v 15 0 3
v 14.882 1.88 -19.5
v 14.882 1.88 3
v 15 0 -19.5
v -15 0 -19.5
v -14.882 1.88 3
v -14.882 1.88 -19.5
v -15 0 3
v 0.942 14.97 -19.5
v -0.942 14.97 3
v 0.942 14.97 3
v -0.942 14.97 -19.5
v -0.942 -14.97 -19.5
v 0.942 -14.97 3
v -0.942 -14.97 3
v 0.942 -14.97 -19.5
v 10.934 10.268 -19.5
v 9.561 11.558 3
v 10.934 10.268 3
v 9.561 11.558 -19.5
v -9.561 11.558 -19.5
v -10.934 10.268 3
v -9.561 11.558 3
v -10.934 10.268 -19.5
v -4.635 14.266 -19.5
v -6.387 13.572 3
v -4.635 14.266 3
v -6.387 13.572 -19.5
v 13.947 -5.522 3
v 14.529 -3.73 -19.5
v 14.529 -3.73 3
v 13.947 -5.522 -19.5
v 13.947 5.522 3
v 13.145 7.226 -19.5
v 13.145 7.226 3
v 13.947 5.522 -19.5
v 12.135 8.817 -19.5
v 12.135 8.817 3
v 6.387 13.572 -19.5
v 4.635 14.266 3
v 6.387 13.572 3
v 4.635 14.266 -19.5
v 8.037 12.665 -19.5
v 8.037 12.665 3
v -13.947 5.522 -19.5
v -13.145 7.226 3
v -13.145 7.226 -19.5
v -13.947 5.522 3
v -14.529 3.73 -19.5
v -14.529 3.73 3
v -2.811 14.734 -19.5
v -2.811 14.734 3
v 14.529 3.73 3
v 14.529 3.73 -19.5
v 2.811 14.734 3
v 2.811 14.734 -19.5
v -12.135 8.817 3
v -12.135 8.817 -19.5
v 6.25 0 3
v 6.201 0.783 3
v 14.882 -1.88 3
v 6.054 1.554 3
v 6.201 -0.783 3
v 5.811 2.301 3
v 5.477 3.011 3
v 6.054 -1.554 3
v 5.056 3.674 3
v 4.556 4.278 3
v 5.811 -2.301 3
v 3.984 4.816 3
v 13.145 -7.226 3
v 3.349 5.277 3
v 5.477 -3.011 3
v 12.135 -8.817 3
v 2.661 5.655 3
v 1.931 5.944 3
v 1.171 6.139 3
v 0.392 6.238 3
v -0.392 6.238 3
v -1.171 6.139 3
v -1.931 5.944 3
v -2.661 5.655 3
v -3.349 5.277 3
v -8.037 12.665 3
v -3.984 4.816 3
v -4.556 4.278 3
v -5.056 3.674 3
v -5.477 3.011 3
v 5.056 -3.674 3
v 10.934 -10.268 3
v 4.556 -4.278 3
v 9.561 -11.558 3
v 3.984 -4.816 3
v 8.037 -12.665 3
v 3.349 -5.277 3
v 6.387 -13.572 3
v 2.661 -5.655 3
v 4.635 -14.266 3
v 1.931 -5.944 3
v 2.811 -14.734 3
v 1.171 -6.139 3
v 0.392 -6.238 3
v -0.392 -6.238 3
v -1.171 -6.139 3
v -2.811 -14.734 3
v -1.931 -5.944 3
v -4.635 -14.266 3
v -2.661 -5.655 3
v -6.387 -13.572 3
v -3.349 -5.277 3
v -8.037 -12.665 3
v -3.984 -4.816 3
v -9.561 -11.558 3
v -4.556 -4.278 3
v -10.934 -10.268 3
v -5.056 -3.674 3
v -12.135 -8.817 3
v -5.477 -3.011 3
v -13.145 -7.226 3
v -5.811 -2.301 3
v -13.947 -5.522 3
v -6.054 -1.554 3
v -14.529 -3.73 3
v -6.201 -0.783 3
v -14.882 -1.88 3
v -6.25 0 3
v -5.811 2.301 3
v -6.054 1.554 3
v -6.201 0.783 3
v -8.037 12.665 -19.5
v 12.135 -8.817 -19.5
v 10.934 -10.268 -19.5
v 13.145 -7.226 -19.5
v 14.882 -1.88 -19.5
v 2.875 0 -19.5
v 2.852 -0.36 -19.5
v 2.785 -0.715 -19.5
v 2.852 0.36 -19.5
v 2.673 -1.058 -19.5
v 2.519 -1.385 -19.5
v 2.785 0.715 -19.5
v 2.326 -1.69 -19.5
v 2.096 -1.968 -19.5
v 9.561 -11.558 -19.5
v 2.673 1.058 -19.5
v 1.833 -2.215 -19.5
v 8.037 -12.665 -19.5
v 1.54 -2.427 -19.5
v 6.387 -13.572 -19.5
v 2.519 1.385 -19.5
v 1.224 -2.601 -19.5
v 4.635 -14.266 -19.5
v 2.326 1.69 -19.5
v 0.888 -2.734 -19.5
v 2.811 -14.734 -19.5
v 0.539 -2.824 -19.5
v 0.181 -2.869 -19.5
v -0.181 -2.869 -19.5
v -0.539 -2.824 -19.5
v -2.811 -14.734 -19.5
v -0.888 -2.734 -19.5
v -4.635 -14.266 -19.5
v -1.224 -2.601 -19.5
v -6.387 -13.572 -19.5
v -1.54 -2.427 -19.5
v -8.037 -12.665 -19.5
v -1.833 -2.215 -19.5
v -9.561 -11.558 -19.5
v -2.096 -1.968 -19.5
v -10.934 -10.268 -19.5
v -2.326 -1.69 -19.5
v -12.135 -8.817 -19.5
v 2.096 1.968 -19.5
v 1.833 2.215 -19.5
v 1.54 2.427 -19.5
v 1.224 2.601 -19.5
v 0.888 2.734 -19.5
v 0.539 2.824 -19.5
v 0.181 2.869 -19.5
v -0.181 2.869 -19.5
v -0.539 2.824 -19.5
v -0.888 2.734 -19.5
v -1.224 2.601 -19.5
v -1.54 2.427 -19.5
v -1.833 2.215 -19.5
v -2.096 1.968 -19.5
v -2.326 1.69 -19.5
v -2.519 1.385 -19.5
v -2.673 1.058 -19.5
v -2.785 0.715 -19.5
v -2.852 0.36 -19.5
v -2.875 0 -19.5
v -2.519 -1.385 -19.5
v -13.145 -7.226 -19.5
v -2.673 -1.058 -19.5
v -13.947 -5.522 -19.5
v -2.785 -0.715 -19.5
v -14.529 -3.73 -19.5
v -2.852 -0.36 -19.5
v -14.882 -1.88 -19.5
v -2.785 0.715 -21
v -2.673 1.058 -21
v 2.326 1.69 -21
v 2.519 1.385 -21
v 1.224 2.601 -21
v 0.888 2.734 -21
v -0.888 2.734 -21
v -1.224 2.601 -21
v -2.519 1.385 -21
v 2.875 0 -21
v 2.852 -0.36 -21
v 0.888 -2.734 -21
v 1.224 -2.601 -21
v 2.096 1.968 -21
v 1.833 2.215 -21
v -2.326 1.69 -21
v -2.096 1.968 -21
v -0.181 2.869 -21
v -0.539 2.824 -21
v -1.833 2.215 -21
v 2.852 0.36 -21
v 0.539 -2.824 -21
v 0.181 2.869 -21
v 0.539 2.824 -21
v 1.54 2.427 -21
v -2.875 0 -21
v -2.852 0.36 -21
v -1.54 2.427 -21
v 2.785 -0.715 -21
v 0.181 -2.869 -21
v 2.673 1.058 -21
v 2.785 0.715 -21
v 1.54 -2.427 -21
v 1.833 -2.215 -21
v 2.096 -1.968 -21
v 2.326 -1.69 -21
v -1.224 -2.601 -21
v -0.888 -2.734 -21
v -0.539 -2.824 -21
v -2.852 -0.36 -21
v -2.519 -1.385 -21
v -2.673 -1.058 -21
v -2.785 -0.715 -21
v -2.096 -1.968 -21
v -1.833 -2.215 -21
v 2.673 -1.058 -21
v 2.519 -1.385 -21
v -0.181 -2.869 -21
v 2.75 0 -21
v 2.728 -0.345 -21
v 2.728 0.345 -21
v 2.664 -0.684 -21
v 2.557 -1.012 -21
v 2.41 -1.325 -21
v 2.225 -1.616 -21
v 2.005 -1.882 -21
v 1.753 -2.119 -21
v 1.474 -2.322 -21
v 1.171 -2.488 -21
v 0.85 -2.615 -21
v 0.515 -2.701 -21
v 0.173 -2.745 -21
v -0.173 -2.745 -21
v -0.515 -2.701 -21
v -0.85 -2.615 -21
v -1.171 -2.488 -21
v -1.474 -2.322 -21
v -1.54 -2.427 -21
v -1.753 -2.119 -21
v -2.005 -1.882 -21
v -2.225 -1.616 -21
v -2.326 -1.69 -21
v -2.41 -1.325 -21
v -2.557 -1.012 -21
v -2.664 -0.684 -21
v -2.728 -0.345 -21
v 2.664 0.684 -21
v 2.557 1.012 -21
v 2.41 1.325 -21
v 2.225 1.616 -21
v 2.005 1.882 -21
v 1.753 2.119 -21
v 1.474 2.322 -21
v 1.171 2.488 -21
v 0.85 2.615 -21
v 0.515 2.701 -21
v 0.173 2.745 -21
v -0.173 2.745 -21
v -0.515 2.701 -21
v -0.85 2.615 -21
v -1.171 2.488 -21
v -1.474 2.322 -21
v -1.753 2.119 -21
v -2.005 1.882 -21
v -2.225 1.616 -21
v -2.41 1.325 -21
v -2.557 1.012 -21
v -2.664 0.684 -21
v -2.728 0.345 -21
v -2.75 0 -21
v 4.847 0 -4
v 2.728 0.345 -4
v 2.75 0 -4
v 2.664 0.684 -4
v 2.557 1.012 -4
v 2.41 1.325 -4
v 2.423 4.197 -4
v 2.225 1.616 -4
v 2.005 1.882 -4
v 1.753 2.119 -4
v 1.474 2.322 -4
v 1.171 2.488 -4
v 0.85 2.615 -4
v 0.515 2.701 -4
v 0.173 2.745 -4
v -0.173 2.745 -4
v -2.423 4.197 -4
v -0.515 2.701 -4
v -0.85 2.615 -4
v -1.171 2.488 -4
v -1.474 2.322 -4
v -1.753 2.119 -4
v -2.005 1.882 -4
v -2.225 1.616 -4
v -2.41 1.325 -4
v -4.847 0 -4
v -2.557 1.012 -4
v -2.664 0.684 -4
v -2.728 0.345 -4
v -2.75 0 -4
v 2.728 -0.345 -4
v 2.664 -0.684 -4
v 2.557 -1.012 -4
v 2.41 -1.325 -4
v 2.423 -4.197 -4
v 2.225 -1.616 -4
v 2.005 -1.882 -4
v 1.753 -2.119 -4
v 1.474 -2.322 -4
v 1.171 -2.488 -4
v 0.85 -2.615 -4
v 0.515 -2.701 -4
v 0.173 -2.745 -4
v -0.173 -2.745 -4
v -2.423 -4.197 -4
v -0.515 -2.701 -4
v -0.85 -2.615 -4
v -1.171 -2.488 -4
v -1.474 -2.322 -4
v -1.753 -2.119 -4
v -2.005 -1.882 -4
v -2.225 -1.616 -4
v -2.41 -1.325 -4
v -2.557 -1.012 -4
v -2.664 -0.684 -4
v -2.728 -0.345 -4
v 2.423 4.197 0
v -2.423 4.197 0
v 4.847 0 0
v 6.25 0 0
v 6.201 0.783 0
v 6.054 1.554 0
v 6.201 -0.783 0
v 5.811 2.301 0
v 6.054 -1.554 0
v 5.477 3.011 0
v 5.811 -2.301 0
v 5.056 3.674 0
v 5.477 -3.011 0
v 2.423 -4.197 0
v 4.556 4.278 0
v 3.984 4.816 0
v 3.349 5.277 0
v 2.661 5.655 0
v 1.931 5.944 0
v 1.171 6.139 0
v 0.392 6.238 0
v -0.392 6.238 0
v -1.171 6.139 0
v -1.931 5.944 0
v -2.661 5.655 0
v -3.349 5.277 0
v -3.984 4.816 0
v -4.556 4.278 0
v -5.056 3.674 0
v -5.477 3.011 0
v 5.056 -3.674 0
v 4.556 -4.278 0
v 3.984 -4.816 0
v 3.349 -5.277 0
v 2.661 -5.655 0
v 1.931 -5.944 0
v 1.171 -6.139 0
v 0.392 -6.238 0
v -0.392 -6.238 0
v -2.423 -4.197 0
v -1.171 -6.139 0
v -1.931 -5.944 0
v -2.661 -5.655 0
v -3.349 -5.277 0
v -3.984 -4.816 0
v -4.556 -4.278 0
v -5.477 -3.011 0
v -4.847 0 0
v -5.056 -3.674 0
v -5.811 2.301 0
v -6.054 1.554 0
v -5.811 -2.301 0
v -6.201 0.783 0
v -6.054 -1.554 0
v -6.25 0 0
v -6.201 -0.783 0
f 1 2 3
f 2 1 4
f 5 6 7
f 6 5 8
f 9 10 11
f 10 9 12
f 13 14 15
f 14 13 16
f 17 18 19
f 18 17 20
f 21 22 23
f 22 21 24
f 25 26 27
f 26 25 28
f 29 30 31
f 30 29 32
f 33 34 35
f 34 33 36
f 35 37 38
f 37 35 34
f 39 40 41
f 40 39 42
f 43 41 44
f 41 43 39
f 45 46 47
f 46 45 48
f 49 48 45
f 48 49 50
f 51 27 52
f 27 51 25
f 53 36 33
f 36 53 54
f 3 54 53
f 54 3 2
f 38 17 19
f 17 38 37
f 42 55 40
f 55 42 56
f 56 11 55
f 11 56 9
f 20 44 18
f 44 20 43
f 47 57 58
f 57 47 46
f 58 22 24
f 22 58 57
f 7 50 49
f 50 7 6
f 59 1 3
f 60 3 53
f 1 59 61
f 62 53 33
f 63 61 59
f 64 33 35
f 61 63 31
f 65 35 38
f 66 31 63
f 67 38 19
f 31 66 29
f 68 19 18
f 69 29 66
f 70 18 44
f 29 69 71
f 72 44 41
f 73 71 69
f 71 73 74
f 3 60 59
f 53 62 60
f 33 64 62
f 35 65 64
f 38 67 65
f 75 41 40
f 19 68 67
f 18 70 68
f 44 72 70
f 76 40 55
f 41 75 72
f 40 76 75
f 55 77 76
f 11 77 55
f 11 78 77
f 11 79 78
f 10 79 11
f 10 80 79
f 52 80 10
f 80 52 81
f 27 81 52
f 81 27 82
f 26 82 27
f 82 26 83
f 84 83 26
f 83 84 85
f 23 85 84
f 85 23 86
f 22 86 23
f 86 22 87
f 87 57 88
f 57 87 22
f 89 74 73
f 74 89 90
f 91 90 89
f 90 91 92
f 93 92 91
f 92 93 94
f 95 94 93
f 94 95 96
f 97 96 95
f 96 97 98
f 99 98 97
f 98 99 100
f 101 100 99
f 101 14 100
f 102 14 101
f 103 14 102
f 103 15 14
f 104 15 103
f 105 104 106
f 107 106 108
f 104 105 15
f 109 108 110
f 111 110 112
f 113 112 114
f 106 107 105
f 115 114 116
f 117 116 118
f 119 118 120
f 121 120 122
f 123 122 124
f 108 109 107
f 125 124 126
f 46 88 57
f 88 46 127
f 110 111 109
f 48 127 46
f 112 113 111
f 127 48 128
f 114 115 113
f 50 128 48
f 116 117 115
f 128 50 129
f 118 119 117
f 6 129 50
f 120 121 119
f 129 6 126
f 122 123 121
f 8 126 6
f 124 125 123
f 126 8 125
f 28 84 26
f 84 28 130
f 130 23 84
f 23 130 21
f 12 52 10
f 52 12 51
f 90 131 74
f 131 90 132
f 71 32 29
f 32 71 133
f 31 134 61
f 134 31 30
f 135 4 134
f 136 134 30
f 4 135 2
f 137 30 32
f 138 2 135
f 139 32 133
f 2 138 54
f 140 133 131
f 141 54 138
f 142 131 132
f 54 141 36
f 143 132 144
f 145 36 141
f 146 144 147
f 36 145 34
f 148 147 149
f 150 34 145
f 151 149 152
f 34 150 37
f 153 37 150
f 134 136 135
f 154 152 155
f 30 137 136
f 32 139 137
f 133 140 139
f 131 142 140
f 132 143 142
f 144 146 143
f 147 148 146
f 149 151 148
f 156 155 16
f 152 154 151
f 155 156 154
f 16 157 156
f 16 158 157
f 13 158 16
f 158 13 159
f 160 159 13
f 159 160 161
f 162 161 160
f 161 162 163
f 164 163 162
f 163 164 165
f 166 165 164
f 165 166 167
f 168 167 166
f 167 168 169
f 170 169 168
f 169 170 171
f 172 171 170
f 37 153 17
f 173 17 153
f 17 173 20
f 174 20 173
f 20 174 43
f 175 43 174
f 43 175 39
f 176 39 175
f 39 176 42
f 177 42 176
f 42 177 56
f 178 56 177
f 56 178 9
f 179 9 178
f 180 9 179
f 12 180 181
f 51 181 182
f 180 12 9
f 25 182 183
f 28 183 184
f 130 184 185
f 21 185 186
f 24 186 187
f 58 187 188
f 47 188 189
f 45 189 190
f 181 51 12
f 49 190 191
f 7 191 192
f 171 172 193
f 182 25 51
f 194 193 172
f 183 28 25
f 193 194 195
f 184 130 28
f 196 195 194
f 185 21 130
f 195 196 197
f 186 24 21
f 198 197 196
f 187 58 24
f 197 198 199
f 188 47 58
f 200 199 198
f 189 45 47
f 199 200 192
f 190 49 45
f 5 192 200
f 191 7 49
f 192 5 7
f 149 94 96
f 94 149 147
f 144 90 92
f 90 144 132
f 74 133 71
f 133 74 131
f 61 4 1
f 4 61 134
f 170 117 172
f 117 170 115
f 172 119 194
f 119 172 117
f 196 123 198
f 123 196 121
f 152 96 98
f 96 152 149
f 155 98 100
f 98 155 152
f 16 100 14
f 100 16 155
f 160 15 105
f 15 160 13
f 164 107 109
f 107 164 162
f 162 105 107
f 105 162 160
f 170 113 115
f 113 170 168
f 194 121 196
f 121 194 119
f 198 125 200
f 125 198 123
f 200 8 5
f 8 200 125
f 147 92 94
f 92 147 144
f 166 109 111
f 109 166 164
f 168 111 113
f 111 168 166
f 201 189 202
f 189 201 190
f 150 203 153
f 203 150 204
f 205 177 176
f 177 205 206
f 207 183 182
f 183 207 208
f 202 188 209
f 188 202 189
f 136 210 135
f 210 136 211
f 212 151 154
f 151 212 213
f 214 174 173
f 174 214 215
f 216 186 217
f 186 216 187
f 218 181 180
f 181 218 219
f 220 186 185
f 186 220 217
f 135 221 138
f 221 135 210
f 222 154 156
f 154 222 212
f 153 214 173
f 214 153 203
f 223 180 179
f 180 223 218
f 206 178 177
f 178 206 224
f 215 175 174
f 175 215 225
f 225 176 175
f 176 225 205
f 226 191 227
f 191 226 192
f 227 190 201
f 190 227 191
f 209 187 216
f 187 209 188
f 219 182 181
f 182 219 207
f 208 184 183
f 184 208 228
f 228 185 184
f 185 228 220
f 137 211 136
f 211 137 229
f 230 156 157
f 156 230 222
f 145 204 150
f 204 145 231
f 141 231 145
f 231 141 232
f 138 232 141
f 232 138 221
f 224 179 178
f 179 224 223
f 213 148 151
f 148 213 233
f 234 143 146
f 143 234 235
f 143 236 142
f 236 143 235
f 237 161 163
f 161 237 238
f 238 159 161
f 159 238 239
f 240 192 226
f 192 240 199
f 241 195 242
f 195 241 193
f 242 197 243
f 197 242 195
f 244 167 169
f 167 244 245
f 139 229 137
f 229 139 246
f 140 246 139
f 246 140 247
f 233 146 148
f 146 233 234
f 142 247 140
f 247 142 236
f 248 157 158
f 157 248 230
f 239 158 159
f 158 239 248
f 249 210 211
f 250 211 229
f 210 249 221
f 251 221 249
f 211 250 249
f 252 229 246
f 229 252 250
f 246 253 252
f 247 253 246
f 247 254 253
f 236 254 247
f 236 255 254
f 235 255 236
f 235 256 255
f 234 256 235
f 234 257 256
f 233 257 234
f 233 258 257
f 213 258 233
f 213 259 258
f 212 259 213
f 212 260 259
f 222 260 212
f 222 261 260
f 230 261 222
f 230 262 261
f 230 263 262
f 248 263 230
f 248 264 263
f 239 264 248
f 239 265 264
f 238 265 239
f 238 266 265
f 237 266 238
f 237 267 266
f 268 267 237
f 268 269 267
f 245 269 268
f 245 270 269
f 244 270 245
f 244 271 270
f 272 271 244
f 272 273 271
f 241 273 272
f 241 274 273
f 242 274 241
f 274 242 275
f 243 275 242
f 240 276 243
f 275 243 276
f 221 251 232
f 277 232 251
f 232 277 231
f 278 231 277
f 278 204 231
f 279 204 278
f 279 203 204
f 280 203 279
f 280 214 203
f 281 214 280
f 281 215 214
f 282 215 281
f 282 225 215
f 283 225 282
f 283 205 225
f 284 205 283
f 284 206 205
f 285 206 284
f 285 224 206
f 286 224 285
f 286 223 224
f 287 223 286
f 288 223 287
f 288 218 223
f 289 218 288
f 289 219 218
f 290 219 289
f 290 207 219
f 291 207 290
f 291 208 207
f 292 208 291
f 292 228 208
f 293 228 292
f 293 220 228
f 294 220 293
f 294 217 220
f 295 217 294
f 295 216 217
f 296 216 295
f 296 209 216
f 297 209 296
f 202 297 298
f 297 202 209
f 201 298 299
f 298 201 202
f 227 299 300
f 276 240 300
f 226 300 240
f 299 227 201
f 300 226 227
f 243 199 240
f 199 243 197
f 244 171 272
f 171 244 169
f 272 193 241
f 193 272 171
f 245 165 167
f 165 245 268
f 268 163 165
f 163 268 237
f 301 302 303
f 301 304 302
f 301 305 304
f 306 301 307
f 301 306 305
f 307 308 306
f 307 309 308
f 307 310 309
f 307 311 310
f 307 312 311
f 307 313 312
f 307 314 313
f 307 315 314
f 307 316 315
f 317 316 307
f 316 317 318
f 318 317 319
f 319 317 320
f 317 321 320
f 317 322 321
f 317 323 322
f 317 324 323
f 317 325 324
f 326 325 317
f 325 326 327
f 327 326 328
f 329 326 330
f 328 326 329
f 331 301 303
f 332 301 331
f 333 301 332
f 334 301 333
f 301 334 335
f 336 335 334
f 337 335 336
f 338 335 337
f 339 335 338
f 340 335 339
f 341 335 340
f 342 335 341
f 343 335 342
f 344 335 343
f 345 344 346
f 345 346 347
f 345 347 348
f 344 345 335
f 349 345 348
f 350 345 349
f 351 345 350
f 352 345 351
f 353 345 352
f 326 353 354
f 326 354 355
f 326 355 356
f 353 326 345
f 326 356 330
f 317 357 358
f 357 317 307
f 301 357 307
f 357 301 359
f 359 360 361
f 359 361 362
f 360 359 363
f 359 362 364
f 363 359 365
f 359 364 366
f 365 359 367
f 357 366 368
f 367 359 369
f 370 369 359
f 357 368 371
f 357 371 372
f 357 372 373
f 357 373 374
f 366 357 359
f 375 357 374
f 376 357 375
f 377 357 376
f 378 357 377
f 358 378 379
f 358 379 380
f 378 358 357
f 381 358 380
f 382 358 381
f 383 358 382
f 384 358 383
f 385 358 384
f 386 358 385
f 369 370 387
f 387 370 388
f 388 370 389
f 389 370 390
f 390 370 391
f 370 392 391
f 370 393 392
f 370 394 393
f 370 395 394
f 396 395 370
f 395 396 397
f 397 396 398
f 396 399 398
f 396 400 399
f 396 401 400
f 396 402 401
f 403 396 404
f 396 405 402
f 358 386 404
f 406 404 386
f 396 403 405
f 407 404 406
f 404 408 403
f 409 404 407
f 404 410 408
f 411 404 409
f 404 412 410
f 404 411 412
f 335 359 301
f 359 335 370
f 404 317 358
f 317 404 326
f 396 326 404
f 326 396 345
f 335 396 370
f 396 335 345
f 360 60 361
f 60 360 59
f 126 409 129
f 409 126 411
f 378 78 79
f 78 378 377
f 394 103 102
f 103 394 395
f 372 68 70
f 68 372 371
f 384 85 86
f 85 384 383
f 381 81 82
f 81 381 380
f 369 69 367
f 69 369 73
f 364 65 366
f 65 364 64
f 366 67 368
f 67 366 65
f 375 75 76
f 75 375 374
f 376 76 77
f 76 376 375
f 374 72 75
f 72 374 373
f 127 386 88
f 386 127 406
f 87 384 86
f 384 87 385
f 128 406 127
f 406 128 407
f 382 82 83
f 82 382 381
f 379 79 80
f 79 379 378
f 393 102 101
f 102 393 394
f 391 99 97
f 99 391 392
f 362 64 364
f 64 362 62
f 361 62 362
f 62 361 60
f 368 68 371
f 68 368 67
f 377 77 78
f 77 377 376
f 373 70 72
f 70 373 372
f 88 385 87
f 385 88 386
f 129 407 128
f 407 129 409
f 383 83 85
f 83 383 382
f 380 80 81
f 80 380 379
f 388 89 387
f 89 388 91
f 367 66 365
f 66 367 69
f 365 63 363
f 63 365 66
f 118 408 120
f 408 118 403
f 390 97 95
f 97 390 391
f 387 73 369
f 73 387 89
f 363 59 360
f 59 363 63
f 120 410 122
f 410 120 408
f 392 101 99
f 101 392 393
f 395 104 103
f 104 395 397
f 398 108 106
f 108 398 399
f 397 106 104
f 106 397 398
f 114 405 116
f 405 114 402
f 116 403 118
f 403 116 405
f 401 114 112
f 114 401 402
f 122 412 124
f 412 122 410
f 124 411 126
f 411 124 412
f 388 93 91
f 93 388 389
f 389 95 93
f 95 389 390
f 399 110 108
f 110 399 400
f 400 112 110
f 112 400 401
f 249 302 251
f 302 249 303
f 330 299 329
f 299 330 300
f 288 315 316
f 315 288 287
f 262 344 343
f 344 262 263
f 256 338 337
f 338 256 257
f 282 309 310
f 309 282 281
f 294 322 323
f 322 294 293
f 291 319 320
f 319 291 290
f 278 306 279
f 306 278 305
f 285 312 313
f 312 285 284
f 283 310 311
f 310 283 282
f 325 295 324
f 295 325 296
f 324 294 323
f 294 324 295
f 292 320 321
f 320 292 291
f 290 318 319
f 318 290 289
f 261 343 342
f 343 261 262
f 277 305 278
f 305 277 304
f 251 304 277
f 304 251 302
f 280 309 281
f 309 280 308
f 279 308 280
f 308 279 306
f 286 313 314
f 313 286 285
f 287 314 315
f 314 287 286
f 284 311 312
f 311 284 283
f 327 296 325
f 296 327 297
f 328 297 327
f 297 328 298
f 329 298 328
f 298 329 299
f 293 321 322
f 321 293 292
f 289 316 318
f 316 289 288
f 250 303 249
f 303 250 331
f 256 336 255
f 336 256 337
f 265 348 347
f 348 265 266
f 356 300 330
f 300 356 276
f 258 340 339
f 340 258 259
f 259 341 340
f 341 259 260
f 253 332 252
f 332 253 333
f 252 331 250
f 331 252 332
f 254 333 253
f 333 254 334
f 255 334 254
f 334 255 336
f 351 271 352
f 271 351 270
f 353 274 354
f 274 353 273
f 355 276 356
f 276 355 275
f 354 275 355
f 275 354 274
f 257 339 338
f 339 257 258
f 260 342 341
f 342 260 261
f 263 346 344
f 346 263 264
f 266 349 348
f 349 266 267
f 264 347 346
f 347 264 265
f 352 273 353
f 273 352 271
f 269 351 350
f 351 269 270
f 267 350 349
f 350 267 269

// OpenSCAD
$fn = 50;

difference() {
	union() {
		translate(v = [0, 0, -19.5]) {
			cylinder(h = 22.5, r = 15.0);
		}
		#translate(v = [0, 0, -21.0]) {
			cylinder(h = 21, r = 2.875);
		}
	}
	union() {
		translate(v = [0, 0, 0]) {
			rotate(a = [0, 0, 0]) {
				difference() {
					union() {
						translate(v = [0, 0, -4]) {
							linear_extrude(height = 4) {
								polygon(points = [[4.8468, 0.0], [2.4234000000000004, 4.197451927062417], [-2.423399999999999, 4.197451927062417], [-4.8468, 5.935618106107392e-16], [-2.423400000000002, -4.197451927062416], [2.423399999999997, -4.197451927062419]]);
							}
						}
					}
					union();
				}
			}
		}
		#cylinder(h = 3, r = 6.25);
		#translate(v = [0, 0, -100.0]) {
			cylinder(h = 200, r = 2.75);
		}
	}
}
